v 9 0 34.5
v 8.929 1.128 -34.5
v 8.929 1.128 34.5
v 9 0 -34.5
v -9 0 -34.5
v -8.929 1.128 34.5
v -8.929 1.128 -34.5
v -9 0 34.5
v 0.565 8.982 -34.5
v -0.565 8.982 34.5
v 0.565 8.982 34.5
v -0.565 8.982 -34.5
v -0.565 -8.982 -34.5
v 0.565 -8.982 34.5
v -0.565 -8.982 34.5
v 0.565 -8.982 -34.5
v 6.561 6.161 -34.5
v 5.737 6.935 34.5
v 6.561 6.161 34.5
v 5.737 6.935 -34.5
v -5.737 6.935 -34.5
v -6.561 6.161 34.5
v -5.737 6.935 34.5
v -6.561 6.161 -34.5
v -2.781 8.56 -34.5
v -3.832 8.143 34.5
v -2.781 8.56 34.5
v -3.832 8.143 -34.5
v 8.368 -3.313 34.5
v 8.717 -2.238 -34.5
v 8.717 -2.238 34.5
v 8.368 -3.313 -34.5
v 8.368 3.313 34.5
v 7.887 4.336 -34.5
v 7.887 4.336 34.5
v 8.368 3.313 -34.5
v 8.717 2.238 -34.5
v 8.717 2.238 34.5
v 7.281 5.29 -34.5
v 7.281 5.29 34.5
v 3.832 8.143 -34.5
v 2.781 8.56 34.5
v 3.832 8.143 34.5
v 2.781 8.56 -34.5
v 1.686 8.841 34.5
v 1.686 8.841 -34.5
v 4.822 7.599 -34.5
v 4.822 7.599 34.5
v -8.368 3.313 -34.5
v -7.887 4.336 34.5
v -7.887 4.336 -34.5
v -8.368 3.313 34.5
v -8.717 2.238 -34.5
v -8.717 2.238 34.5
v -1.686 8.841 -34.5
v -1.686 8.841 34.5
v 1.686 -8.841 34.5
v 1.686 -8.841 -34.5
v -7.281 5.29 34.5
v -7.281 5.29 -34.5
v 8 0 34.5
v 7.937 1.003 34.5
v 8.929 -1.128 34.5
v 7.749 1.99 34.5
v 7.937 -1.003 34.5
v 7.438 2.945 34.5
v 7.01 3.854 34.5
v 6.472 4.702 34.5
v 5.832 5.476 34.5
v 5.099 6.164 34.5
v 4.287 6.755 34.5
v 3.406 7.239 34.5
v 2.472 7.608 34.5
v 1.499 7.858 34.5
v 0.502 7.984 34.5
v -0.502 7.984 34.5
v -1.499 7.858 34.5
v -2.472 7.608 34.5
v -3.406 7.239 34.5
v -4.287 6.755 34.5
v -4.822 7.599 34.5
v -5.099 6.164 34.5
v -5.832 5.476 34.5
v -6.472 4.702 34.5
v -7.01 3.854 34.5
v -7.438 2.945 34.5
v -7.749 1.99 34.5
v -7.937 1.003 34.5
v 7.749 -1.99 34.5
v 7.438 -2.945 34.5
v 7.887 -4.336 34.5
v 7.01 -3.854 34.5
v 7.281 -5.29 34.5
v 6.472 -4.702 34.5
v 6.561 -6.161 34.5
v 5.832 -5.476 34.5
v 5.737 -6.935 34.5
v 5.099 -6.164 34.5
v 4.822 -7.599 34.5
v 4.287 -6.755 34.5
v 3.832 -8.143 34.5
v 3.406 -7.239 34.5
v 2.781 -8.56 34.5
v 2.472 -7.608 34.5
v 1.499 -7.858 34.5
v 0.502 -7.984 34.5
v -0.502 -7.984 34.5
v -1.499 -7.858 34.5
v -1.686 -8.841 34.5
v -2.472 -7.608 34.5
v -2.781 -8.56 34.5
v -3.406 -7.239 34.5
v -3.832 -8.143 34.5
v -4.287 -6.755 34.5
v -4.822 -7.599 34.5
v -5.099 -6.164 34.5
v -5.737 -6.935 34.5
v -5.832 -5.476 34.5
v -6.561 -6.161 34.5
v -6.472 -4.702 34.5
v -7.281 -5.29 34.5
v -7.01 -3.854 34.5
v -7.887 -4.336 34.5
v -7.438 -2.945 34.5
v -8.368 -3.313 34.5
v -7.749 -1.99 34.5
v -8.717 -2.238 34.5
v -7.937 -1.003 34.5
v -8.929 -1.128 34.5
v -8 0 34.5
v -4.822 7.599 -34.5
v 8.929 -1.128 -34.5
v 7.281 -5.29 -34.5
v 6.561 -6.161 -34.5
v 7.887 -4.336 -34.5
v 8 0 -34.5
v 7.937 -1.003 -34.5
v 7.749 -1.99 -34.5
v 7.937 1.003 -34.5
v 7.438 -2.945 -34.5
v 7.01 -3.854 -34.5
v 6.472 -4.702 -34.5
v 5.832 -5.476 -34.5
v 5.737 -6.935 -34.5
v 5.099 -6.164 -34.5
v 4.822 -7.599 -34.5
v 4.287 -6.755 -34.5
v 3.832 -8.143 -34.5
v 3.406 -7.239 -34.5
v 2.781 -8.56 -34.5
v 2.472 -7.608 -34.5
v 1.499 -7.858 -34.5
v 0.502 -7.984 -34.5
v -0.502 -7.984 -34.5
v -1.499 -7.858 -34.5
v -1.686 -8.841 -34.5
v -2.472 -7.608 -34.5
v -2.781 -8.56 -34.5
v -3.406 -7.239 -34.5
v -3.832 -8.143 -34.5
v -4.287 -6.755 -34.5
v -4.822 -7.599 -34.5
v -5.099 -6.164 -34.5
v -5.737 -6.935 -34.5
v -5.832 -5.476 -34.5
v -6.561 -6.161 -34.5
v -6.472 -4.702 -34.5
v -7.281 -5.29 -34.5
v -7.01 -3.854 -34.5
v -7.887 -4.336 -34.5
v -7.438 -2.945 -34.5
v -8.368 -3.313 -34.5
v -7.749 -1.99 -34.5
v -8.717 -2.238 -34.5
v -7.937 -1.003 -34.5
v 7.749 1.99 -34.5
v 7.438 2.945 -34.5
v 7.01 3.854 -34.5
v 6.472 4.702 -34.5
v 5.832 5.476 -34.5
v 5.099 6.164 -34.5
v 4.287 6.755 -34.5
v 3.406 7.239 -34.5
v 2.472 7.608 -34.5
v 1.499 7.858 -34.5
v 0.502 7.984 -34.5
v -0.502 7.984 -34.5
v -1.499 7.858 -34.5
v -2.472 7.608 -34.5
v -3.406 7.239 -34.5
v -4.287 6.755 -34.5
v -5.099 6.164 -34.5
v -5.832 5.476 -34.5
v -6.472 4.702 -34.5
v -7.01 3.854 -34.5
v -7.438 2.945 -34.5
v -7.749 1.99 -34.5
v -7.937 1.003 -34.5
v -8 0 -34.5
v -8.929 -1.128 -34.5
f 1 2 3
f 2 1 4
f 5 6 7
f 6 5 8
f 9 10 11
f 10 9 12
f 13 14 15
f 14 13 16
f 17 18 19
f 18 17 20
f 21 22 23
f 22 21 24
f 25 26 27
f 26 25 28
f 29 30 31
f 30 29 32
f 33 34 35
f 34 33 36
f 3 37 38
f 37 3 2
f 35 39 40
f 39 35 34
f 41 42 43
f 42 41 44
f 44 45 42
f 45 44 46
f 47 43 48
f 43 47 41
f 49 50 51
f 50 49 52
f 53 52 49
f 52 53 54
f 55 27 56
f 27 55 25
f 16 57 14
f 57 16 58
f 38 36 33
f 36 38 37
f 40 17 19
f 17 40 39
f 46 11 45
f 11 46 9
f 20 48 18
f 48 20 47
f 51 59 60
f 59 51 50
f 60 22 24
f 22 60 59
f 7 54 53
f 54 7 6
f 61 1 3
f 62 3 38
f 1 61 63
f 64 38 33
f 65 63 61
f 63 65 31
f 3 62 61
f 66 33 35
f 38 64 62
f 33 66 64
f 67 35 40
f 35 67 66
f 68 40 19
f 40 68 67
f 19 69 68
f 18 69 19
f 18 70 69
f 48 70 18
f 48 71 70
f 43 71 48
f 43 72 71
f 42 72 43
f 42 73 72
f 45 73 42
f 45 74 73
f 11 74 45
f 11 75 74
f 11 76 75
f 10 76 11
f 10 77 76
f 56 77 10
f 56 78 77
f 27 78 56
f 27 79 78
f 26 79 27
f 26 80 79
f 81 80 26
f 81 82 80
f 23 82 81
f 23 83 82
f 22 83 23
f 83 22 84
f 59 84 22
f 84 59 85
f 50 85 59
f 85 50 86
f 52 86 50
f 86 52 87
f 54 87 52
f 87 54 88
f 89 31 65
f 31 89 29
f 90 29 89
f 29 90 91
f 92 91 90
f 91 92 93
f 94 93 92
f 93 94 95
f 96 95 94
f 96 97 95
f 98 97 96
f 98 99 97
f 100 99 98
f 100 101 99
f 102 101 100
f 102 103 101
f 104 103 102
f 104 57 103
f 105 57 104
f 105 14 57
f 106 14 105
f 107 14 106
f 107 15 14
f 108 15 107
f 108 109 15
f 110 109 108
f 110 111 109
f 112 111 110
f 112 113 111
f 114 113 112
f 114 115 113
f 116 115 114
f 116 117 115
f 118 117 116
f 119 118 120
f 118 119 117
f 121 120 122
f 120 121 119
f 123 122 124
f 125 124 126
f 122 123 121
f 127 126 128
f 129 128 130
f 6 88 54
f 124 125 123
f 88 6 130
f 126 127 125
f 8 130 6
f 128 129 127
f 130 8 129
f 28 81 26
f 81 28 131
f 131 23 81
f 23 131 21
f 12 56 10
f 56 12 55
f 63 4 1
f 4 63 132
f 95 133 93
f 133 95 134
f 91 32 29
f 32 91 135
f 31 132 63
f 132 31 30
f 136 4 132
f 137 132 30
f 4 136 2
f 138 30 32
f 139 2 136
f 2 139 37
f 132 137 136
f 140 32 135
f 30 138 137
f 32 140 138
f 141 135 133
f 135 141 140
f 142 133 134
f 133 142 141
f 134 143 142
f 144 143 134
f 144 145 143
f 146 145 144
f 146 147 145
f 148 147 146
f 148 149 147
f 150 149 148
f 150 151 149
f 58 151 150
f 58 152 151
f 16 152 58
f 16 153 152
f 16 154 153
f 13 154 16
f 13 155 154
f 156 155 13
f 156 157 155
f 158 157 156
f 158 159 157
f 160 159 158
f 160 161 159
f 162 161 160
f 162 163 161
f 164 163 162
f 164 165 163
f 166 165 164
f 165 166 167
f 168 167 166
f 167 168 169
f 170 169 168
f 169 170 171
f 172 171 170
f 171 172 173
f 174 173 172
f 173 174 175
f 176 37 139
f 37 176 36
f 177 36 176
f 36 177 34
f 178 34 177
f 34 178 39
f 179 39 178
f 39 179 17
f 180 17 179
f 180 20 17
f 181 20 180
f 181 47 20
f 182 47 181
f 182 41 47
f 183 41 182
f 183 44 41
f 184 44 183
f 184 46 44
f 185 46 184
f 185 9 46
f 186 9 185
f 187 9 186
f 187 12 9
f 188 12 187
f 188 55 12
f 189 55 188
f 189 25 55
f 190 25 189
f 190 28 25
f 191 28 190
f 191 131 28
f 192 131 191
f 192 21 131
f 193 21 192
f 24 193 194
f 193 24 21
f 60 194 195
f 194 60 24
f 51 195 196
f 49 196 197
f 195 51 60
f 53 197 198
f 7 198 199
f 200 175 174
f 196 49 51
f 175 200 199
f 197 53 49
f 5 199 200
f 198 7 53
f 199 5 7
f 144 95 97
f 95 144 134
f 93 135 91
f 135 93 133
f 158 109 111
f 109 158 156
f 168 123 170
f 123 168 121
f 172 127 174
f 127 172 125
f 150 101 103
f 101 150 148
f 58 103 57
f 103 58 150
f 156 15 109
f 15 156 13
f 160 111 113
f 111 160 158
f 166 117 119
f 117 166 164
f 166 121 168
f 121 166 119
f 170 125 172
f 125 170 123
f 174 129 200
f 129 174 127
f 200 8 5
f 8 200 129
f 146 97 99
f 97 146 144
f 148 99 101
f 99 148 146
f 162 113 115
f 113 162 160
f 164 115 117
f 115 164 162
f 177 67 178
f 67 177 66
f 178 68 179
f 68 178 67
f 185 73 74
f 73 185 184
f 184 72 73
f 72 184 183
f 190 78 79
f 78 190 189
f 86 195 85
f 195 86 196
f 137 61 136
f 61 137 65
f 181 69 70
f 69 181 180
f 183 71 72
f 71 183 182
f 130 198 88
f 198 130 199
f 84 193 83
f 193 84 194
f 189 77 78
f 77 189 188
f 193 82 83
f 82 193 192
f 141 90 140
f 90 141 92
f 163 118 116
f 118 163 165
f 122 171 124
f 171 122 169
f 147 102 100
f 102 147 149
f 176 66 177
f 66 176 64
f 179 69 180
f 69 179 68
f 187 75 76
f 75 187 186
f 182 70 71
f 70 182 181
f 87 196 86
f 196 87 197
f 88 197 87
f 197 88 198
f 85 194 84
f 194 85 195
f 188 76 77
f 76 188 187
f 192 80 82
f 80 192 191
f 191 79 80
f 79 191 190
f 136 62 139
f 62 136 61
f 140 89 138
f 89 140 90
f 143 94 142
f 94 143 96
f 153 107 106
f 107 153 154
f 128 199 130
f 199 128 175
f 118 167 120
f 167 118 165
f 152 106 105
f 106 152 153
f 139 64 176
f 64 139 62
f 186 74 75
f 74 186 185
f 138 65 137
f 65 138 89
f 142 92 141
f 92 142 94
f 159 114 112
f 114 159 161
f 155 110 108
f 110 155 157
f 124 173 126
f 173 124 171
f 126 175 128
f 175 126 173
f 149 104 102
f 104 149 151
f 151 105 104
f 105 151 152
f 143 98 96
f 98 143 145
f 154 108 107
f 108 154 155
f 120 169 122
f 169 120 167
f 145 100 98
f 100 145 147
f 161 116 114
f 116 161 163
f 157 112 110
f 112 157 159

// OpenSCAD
$fn = 50;


difference() {
	union() {
		translate(v = [0, 0, -34.5000000000]) {
			cylinder(h = 69, r = 9.0000000000);
		}
	}
	union() {
		translate(v = [0, 0, -100.0000000000]) {
			cylinder(h = 200, r = 8);
		}
	}
}
